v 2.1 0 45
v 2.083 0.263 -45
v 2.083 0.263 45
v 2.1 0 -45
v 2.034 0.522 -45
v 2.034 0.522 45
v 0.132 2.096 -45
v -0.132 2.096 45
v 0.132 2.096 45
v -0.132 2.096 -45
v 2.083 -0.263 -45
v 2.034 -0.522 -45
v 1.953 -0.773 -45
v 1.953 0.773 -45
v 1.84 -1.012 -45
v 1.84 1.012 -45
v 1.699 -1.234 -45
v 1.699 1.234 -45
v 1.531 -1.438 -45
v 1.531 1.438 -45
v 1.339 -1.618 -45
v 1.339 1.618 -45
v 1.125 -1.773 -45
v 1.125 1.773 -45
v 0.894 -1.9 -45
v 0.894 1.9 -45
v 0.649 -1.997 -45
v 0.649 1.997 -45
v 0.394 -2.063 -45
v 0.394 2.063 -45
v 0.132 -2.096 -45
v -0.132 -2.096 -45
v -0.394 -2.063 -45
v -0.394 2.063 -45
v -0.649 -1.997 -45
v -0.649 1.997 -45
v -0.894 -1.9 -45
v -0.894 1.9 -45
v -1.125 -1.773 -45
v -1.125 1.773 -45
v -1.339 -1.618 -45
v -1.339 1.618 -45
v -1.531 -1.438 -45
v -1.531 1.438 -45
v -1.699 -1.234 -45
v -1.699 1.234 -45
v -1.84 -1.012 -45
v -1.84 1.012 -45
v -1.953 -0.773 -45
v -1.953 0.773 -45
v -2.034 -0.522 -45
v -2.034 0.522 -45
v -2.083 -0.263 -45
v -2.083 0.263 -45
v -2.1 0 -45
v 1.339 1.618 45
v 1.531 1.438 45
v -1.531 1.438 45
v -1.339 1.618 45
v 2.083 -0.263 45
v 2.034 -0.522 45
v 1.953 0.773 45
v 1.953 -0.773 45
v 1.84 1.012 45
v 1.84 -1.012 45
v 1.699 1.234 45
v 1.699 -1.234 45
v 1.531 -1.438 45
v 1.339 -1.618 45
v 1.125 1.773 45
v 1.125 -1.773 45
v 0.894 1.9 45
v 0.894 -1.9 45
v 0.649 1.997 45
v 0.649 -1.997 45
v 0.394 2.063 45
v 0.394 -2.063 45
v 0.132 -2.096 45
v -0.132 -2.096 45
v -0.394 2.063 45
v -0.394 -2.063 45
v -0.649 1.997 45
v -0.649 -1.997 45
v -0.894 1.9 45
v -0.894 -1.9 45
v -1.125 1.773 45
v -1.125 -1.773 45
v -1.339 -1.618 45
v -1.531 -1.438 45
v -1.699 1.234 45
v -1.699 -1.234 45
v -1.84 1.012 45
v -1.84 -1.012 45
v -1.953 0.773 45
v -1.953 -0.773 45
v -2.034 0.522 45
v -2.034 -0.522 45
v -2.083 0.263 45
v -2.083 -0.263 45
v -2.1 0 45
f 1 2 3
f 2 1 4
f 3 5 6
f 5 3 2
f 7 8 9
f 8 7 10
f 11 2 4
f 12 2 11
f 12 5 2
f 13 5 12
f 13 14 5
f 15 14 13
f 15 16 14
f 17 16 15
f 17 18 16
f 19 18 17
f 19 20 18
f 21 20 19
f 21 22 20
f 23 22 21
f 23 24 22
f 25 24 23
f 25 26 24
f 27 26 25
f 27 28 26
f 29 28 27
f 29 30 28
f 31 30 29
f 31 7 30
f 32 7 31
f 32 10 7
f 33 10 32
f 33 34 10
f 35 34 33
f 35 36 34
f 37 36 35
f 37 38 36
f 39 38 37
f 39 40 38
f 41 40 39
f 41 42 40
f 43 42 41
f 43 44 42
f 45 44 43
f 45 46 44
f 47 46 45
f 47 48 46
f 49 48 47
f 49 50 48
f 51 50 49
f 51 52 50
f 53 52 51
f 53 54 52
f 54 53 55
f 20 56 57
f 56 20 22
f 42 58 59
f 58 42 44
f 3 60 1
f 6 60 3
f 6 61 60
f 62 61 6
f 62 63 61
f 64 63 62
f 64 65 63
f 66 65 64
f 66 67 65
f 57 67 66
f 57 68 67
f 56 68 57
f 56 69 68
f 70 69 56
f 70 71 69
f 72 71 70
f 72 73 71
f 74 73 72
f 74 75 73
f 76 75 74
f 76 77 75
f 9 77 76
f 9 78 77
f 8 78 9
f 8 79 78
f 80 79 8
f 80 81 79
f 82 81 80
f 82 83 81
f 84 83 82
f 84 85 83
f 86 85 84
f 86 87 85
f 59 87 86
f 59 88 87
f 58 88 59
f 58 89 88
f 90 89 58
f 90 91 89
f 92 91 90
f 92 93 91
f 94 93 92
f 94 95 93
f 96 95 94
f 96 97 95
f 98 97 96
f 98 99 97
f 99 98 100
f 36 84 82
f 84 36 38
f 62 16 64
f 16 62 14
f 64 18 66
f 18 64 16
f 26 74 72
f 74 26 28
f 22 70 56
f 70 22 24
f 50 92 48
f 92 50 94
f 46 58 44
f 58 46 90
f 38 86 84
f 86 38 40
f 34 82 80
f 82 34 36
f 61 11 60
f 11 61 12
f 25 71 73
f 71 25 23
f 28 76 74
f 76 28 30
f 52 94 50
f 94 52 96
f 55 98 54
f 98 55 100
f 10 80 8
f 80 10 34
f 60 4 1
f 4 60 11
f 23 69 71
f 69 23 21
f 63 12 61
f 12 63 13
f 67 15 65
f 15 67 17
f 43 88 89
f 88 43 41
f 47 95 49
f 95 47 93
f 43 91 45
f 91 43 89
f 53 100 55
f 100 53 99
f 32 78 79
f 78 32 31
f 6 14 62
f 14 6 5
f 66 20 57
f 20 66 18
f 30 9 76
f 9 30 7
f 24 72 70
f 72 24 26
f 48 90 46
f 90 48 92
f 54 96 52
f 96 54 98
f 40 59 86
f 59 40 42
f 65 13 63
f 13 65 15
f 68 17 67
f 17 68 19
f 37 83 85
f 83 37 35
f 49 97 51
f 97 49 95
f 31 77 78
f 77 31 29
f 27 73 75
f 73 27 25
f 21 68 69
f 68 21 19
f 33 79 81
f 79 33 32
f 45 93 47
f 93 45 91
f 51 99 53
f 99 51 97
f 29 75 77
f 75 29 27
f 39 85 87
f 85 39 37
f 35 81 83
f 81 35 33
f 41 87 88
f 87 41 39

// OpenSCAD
$fn = 50;


difference() {
	union() {
		translate(v = [0, 0, -45.0000000000]) {
			cylinder(h = 90, r = 2.1000000000);
		}
	}
	union() {
		translate(v = [0, 0, -100.0000000000]) {
			cylinder(h = 200, r = 0);
		}
	}
}
